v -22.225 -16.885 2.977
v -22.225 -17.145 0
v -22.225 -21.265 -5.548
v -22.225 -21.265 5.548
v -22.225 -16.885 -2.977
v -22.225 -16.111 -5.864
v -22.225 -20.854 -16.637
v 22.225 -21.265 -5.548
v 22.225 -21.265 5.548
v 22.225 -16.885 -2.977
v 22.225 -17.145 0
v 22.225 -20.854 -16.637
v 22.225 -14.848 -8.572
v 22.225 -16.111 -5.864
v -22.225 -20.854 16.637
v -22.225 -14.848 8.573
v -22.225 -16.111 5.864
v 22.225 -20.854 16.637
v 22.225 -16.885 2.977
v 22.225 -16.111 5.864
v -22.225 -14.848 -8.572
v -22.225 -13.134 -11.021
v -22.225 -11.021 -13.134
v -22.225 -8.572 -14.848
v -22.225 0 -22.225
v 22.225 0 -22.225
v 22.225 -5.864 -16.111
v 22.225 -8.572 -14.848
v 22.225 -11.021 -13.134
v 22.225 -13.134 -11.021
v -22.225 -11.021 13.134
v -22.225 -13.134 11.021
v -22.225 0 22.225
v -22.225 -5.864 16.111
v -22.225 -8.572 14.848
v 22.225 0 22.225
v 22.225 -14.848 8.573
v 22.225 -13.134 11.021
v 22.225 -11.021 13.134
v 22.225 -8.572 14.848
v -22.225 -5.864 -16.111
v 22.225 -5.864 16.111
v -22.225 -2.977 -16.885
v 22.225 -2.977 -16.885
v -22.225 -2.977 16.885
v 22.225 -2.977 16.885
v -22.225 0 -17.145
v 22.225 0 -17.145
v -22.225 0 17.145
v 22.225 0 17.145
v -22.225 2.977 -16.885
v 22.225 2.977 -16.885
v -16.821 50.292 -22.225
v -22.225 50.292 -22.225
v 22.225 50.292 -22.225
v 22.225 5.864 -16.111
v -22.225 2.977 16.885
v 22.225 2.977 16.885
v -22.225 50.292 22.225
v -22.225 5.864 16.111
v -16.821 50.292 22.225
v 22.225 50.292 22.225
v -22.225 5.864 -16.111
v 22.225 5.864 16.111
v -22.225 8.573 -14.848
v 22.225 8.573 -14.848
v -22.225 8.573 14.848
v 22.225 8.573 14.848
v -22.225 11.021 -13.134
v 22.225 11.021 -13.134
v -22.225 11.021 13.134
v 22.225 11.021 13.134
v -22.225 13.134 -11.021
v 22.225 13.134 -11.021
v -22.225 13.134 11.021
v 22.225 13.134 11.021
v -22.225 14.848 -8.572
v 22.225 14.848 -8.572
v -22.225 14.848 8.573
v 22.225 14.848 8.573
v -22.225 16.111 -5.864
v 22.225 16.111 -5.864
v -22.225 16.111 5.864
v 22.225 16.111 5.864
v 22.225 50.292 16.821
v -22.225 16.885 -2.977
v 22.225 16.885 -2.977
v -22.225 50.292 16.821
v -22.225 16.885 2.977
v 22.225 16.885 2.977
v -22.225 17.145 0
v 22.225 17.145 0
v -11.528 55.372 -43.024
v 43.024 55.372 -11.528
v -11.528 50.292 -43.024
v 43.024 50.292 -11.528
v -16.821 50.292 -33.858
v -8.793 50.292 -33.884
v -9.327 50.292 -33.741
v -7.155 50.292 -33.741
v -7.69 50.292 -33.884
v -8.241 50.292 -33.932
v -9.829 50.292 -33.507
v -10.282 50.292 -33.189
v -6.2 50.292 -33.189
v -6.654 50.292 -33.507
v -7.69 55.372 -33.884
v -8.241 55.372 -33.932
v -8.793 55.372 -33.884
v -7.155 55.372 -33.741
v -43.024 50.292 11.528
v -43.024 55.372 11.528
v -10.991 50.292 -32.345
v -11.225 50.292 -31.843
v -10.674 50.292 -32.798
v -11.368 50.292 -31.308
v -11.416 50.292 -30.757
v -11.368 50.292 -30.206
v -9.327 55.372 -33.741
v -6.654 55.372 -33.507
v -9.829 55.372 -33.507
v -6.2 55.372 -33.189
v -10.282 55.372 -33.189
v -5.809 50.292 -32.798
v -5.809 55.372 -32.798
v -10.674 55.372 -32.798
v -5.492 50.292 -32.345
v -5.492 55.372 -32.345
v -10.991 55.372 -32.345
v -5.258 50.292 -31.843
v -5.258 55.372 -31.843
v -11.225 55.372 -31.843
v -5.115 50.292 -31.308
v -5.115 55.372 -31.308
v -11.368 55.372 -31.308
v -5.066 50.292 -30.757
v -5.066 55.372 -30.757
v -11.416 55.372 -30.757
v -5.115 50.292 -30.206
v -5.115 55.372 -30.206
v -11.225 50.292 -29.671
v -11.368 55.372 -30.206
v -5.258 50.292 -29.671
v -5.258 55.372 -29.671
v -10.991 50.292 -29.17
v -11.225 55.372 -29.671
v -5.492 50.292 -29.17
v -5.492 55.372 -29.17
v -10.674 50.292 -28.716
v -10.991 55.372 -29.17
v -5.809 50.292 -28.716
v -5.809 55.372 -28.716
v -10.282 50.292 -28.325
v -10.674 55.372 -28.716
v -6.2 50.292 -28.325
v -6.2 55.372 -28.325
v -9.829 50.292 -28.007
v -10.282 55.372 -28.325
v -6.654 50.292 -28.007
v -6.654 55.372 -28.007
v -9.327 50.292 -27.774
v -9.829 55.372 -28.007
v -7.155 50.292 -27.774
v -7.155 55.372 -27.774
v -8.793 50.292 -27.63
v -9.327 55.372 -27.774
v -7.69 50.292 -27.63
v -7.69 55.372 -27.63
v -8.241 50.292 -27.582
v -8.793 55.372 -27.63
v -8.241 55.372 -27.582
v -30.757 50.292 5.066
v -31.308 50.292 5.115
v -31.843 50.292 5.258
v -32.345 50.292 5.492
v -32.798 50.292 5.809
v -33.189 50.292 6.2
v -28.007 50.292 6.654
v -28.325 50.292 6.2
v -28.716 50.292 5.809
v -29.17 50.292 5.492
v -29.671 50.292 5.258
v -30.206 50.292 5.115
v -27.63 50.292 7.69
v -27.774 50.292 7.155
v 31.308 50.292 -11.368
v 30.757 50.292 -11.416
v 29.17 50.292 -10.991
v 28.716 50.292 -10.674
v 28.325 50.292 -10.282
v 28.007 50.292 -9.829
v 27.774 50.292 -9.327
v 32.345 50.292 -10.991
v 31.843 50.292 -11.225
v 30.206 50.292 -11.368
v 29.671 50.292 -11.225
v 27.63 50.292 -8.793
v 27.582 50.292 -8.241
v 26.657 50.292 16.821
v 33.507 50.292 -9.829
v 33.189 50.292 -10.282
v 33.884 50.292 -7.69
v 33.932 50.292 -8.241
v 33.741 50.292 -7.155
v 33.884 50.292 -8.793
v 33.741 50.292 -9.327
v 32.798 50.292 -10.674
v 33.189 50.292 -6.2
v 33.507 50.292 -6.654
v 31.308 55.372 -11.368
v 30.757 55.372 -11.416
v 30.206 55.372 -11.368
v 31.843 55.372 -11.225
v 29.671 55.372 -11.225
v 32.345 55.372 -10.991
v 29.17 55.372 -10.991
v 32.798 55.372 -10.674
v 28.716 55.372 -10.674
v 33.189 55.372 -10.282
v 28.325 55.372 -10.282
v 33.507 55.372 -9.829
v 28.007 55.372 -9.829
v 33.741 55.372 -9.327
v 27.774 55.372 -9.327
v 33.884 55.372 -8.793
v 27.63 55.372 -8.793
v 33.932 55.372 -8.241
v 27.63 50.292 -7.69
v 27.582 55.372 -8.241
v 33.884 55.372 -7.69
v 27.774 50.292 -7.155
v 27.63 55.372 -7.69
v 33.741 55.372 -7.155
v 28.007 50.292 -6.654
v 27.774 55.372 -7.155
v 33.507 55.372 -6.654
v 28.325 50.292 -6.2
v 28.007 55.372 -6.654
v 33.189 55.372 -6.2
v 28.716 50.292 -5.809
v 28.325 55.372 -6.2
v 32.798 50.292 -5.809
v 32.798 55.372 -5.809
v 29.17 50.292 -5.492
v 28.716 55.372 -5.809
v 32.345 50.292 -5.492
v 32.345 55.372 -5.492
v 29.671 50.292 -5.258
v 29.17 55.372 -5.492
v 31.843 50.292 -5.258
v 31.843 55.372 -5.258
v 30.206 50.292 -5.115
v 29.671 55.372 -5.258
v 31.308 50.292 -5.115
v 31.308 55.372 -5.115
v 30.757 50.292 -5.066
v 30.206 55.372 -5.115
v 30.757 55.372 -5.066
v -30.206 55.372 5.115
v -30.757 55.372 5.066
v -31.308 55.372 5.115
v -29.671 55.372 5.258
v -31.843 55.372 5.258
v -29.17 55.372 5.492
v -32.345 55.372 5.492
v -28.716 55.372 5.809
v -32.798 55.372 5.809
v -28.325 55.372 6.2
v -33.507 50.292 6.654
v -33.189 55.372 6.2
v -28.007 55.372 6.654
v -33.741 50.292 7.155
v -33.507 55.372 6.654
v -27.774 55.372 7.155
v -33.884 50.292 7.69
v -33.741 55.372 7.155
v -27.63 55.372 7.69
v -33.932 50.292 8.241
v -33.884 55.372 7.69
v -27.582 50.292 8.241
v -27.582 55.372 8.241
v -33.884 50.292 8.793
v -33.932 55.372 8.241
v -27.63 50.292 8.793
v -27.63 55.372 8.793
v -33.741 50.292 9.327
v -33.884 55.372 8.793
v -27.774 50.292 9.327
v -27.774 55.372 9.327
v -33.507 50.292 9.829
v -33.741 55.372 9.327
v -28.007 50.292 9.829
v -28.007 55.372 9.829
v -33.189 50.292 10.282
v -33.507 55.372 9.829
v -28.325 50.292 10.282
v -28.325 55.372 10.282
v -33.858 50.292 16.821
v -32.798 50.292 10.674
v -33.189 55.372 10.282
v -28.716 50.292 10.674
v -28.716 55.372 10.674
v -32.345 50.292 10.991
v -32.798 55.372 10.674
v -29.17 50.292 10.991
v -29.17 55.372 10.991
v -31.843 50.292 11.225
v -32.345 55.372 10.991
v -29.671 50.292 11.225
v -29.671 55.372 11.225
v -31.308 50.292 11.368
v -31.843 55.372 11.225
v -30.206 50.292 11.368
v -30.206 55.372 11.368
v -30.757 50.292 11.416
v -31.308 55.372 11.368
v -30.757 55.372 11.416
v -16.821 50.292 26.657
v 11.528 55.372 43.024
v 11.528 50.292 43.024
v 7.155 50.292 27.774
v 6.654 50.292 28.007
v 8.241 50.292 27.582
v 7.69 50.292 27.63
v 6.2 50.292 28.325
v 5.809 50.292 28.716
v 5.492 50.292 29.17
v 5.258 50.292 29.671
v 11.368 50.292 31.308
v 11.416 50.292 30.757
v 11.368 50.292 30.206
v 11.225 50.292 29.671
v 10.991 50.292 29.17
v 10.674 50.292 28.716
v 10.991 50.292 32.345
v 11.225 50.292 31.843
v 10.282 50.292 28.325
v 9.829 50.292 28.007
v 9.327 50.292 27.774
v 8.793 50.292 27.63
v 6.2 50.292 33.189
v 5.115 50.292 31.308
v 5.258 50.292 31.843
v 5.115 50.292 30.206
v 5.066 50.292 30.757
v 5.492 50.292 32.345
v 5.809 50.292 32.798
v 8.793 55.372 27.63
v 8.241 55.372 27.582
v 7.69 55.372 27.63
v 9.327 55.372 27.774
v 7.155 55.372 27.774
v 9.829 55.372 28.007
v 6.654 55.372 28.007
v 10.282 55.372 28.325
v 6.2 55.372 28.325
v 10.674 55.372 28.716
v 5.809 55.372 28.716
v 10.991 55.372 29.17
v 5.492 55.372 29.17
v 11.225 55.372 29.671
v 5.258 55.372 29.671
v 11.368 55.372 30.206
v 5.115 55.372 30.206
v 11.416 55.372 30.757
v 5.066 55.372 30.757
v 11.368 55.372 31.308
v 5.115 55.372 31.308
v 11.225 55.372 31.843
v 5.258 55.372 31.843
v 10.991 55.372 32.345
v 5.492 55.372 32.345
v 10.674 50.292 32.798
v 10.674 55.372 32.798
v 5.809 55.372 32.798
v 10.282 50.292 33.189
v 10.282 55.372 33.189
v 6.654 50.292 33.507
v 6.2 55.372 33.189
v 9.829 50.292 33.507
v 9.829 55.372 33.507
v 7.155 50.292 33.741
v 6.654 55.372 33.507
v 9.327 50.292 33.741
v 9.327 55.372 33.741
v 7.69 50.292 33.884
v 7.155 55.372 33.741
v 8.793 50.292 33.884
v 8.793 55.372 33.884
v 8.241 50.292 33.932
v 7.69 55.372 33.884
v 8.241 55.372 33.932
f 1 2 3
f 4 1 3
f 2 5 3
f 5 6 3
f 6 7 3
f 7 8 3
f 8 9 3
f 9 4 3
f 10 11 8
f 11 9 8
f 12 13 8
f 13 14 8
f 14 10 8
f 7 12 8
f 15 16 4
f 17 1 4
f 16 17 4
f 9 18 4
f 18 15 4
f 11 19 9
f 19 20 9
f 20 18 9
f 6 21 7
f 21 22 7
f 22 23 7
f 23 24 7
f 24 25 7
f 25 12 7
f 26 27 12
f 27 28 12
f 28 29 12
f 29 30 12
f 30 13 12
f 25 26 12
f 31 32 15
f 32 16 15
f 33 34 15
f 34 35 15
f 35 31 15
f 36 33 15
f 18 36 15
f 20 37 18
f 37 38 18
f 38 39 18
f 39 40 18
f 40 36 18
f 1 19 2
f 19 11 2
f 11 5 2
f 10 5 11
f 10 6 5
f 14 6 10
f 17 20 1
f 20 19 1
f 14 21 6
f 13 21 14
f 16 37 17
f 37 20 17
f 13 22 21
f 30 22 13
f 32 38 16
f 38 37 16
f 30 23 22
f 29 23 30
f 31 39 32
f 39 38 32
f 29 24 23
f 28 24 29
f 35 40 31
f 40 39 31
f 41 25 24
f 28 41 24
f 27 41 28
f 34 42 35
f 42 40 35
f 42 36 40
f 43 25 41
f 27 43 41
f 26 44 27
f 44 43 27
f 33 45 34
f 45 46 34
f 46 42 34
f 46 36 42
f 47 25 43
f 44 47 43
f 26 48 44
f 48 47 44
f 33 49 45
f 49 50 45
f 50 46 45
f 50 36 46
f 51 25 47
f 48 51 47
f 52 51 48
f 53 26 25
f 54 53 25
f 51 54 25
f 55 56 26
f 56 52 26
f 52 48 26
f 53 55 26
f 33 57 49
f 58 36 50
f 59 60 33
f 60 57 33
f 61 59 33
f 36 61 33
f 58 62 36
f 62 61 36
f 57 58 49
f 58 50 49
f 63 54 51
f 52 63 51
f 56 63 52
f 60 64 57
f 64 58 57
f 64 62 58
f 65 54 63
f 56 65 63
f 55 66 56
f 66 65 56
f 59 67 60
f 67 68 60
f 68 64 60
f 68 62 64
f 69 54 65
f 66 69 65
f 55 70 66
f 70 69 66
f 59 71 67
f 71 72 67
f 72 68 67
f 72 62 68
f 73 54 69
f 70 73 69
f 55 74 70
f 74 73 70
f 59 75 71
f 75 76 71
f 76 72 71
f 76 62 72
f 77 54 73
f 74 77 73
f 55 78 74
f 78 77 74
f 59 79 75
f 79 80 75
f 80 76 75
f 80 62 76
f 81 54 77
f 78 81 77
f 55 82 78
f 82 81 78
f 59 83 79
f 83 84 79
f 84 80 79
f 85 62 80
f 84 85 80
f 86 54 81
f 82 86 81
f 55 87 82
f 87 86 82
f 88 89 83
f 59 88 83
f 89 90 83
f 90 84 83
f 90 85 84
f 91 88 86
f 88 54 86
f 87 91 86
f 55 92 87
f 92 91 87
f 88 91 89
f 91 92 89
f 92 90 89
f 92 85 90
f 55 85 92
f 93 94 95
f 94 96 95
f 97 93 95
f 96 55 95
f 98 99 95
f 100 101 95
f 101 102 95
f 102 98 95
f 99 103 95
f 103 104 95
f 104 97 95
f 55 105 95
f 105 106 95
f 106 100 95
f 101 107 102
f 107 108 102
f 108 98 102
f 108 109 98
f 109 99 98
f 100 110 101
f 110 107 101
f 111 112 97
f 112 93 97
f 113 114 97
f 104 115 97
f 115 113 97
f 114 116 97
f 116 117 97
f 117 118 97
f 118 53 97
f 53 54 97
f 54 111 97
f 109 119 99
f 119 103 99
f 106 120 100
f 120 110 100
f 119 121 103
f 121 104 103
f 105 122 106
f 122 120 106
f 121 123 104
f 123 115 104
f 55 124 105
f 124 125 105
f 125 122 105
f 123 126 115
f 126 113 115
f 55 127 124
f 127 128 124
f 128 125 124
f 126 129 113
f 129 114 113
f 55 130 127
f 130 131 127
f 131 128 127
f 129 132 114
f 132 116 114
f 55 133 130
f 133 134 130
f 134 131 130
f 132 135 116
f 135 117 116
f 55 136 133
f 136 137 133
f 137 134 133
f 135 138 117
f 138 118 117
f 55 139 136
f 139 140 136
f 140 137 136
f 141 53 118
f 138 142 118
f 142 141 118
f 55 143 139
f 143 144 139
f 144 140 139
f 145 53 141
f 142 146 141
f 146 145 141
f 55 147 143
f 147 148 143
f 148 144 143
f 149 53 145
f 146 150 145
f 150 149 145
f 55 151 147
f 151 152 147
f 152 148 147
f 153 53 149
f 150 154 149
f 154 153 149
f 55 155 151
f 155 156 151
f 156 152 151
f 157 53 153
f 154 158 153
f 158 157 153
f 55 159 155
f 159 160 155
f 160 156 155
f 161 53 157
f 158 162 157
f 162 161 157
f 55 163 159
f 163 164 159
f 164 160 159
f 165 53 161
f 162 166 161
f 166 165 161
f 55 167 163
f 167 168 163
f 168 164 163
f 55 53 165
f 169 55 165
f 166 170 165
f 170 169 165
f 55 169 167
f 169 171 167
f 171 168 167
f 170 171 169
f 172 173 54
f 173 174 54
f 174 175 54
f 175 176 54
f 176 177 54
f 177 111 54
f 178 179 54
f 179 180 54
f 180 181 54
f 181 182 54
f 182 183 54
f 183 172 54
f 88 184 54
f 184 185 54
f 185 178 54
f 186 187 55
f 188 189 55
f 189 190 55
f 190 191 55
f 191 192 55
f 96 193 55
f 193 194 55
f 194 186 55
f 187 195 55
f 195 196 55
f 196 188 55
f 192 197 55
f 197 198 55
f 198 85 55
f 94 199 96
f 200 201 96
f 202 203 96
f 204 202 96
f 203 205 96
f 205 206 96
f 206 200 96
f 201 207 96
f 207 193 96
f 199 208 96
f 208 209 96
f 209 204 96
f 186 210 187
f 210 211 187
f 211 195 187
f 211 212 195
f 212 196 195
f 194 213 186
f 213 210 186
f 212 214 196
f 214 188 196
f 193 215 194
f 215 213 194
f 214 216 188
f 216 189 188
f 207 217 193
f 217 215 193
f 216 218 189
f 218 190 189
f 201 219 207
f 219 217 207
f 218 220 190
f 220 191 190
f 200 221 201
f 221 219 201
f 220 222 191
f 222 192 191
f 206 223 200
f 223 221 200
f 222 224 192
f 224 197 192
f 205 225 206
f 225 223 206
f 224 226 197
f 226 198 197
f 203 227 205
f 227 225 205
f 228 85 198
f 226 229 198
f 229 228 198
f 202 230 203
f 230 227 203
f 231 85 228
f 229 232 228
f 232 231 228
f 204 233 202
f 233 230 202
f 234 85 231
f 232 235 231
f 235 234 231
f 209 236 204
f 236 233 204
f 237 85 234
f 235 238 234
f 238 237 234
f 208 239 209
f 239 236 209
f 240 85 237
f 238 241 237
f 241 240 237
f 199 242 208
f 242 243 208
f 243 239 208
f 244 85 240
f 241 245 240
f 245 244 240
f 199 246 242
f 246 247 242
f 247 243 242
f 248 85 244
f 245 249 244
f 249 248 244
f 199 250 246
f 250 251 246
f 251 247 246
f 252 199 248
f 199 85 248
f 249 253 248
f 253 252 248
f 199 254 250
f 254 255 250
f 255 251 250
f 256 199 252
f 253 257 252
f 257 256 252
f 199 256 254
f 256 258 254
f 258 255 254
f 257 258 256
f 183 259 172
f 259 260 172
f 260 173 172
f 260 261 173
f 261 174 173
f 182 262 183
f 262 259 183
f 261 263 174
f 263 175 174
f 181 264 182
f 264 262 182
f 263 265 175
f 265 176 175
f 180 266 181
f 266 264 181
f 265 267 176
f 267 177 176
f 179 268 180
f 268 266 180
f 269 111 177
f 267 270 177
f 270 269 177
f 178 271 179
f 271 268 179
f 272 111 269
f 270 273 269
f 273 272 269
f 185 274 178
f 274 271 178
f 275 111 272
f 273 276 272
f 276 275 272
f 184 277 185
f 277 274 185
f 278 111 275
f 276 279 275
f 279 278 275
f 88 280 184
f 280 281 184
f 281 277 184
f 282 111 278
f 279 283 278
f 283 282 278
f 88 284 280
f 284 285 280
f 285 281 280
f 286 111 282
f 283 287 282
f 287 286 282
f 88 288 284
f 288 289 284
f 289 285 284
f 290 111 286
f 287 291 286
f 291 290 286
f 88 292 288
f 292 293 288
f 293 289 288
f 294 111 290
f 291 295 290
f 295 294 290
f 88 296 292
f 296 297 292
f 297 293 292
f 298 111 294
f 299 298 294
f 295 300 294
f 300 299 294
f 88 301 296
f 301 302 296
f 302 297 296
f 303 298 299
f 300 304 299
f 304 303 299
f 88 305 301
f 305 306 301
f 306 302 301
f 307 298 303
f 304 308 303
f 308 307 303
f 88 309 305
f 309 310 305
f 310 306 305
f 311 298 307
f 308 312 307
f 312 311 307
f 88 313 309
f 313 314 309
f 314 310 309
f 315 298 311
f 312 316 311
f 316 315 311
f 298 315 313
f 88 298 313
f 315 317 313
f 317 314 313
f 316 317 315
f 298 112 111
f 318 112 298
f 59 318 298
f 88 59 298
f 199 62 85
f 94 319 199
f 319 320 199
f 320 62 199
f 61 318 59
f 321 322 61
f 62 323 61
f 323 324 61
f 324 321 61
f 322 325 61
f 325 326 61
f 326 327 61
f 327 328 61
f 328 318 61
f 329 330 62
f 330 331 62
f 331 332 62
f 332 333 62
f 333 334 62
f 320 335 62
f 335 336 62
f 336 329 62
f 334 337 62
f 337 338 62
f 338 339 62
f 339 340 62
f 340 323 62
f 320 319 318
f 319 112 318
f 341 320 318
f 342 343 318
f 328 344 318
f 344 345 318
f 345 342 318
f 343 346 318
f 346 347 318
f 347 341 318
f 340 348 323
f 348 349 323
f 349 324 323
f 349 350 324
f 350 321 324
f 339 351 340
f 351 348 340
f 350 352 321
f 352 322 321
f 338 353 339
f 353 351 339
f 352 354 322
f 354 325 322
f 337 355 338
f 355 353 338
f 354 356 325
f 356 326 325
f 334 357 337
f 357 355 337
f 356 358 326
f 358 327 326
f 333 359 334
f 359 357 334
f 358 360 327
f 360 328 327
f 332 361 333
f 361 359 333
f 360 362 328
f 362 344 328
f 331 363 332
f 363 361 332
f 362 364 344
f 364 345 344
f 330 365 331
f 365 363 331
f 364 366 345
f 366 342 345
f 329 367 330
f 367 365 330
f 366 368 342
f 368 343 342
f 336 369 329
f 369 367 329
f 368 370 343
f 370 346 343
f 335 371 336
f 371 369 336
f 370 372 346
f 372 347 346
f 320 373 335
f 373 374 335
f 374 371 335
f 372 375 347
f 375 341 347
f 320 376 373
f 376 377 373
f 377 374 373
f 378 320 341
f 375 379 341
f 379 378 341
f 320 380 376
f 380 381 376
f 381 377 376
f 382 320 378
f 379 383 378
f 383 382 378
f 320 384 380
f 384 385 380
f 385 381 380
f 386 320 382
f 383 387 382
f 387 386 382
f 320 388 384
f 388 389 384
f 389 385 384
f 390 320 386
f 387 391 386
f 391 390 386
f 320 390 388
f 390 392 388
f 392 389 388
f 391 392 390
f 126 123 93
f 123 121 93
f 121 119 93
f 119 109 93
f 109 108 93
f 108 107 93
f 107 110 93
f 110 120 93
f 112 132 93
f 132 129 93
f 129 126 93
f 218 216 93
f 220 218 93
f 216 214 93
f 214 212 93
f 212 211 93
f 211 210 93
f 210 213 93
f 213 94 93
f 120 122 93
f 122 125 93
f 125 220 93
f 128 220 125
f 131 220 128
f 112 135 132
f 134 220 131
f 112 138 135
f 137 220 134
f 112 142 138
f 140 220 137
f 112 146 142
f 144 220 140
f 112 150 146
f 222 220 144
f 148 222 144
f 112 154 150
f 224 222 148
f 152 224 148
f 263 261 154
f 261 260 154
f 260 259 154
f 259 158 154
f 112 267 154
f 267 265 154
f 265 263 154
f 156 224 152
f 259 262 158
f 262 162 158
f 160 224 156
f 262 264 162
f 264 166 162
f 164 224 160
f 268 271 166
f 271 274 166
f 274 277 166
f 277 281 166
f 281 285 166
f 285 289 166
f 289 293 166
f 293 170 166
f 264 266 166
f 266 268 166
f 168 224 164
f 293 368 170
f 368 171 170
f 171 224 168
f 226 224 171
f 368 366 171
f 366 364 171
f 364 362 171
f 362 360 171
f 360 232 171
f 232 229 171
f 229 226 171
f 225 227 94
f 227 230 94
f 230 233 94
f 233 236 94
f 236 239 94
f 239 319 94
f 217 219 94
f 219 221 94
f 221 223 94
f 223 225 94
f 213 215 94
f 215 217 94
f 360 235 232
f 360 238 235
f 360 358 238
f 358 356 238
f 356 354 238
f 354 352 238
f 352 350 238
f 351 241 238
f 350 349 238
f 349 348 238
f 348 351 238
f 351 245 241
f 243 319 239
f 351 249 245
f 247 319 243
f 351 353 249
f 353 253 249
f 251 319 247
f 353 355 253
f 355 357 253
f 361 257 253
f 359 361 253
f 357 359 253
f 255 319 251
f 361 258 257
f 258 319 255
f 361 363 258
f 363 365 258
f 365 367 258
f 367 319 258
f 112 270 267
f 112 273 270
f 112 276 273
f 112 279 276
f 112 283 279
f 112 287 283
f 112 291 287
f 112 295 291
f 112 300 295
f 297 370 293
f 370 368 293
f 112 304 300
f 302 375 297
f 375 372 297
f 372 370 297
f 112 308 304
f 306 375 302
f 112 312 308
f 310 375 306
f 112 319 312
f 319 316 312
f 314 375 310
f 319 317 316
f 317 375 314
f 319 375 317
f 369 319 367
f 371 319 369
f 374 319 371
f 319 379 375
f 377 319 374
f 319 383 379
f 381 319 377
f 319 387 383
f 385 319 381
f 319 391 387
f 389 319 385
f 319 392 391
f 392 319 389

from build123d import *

# Parameters (mm, degrees)
SKETCH1_W           = 44.45
SKETCH1_H           = 44.45
BOSS_EXTRUDE1_DEPTH = 50.292
BOSS_EXTRUDE2_DEPTH = 44.45
SKETCH3_R           = 17.145
CUT_EXTRUDE1_DEPTH  = 127
BOSS_EXTRUDE3_DEPTH = 5.08
SKETCH5_R           = 3.175
CUT_EXTRUDE2_DEPTH  = 77.68803402


with BuildPart() as part:
    # Sketch1 → Boss-Extrude1 (new body)
    with BuildSketch(Plane(origin=(0, 0, 0), x_dir=(1, 0, 0), z_dir=(0, 1, 0))):
        Rectangle(SKETCH1_W, SKETCH1_H)
    extrude(amount=BOSS_EXTRUDE1_DEPTH)

    # Sketch2 → Boss-Extrude2 (add)
    with BuildSketch(Plane(origin=(22.225, 0, 0), x_dir=(0, 0, -1), z_dir=(1, 0, 0))):
        with BuildLine():
            Line((-22.225, 0), (-16.637096816, -20.85433859))
            ThreePointArc((-16.637096816, -20.85433859), (0, -21.31603402), (16.637096816, -20.85433859))
            Line((16.637096816, -20.85433859), (22.225, 0))
            Line((22.225, 0), (-22.225, 0))
        make_face()
    extrude(amount=-BOSS_EXTRUDE2_DEPTH)

    # Sketch3 → Cut-Extrude1 (cut)
    with BuildSketch(Plane(origin=(22.225, 0, 0), x_dir=(0, 0, -1), z_dir=(1, 0, 0))):
        Circle(SKETCH3_R)
    extrude(amount=-CUT_EXTRUDE1_DEPTH, mode=Mode.SUBTRACT)

    # Sketch4 → Boss-Extrude3 (add)
    with BuildSketch(Plane(origin=(0, 50.292, 0), x_dir=(1, 0, 0), z_dir=(0, 1, 0))):
        Polygon((43.024336118, 11.528336118), (11.528336118, -43.024336118), (-43.024336118, -11.528336118), (-11.528336118, 43.024336118), align=None)
    extrude(amount=BOSS_EXTRUDE3_DEPTH)

    # Sketch5 → Cut-Extrude2 (cut, through all)
    with BuildSketch(Plane(origin=(0, 55.372, 0), x_dir=(1, 0, 0), z_dir=(0, 1, 0))):
        with Locations((30.757078124, 8.241334245)):
            Circle(SKETCH5_R)
        with Locations((8.241334245, -30.757078124)):
            Circle(SKETCH5_R)
        with Locations((-8.241334245, 30.757078124)):
            Circle(SKETCH5_R)
        with Locations((-30.757078124, -8.241334245)):
            Circle(SKETCH5_R)
    extrude(amount=-CUT_EXTRUDE2_DEPTH, mode=Mode.SUBTRACT)


solid = part.part
